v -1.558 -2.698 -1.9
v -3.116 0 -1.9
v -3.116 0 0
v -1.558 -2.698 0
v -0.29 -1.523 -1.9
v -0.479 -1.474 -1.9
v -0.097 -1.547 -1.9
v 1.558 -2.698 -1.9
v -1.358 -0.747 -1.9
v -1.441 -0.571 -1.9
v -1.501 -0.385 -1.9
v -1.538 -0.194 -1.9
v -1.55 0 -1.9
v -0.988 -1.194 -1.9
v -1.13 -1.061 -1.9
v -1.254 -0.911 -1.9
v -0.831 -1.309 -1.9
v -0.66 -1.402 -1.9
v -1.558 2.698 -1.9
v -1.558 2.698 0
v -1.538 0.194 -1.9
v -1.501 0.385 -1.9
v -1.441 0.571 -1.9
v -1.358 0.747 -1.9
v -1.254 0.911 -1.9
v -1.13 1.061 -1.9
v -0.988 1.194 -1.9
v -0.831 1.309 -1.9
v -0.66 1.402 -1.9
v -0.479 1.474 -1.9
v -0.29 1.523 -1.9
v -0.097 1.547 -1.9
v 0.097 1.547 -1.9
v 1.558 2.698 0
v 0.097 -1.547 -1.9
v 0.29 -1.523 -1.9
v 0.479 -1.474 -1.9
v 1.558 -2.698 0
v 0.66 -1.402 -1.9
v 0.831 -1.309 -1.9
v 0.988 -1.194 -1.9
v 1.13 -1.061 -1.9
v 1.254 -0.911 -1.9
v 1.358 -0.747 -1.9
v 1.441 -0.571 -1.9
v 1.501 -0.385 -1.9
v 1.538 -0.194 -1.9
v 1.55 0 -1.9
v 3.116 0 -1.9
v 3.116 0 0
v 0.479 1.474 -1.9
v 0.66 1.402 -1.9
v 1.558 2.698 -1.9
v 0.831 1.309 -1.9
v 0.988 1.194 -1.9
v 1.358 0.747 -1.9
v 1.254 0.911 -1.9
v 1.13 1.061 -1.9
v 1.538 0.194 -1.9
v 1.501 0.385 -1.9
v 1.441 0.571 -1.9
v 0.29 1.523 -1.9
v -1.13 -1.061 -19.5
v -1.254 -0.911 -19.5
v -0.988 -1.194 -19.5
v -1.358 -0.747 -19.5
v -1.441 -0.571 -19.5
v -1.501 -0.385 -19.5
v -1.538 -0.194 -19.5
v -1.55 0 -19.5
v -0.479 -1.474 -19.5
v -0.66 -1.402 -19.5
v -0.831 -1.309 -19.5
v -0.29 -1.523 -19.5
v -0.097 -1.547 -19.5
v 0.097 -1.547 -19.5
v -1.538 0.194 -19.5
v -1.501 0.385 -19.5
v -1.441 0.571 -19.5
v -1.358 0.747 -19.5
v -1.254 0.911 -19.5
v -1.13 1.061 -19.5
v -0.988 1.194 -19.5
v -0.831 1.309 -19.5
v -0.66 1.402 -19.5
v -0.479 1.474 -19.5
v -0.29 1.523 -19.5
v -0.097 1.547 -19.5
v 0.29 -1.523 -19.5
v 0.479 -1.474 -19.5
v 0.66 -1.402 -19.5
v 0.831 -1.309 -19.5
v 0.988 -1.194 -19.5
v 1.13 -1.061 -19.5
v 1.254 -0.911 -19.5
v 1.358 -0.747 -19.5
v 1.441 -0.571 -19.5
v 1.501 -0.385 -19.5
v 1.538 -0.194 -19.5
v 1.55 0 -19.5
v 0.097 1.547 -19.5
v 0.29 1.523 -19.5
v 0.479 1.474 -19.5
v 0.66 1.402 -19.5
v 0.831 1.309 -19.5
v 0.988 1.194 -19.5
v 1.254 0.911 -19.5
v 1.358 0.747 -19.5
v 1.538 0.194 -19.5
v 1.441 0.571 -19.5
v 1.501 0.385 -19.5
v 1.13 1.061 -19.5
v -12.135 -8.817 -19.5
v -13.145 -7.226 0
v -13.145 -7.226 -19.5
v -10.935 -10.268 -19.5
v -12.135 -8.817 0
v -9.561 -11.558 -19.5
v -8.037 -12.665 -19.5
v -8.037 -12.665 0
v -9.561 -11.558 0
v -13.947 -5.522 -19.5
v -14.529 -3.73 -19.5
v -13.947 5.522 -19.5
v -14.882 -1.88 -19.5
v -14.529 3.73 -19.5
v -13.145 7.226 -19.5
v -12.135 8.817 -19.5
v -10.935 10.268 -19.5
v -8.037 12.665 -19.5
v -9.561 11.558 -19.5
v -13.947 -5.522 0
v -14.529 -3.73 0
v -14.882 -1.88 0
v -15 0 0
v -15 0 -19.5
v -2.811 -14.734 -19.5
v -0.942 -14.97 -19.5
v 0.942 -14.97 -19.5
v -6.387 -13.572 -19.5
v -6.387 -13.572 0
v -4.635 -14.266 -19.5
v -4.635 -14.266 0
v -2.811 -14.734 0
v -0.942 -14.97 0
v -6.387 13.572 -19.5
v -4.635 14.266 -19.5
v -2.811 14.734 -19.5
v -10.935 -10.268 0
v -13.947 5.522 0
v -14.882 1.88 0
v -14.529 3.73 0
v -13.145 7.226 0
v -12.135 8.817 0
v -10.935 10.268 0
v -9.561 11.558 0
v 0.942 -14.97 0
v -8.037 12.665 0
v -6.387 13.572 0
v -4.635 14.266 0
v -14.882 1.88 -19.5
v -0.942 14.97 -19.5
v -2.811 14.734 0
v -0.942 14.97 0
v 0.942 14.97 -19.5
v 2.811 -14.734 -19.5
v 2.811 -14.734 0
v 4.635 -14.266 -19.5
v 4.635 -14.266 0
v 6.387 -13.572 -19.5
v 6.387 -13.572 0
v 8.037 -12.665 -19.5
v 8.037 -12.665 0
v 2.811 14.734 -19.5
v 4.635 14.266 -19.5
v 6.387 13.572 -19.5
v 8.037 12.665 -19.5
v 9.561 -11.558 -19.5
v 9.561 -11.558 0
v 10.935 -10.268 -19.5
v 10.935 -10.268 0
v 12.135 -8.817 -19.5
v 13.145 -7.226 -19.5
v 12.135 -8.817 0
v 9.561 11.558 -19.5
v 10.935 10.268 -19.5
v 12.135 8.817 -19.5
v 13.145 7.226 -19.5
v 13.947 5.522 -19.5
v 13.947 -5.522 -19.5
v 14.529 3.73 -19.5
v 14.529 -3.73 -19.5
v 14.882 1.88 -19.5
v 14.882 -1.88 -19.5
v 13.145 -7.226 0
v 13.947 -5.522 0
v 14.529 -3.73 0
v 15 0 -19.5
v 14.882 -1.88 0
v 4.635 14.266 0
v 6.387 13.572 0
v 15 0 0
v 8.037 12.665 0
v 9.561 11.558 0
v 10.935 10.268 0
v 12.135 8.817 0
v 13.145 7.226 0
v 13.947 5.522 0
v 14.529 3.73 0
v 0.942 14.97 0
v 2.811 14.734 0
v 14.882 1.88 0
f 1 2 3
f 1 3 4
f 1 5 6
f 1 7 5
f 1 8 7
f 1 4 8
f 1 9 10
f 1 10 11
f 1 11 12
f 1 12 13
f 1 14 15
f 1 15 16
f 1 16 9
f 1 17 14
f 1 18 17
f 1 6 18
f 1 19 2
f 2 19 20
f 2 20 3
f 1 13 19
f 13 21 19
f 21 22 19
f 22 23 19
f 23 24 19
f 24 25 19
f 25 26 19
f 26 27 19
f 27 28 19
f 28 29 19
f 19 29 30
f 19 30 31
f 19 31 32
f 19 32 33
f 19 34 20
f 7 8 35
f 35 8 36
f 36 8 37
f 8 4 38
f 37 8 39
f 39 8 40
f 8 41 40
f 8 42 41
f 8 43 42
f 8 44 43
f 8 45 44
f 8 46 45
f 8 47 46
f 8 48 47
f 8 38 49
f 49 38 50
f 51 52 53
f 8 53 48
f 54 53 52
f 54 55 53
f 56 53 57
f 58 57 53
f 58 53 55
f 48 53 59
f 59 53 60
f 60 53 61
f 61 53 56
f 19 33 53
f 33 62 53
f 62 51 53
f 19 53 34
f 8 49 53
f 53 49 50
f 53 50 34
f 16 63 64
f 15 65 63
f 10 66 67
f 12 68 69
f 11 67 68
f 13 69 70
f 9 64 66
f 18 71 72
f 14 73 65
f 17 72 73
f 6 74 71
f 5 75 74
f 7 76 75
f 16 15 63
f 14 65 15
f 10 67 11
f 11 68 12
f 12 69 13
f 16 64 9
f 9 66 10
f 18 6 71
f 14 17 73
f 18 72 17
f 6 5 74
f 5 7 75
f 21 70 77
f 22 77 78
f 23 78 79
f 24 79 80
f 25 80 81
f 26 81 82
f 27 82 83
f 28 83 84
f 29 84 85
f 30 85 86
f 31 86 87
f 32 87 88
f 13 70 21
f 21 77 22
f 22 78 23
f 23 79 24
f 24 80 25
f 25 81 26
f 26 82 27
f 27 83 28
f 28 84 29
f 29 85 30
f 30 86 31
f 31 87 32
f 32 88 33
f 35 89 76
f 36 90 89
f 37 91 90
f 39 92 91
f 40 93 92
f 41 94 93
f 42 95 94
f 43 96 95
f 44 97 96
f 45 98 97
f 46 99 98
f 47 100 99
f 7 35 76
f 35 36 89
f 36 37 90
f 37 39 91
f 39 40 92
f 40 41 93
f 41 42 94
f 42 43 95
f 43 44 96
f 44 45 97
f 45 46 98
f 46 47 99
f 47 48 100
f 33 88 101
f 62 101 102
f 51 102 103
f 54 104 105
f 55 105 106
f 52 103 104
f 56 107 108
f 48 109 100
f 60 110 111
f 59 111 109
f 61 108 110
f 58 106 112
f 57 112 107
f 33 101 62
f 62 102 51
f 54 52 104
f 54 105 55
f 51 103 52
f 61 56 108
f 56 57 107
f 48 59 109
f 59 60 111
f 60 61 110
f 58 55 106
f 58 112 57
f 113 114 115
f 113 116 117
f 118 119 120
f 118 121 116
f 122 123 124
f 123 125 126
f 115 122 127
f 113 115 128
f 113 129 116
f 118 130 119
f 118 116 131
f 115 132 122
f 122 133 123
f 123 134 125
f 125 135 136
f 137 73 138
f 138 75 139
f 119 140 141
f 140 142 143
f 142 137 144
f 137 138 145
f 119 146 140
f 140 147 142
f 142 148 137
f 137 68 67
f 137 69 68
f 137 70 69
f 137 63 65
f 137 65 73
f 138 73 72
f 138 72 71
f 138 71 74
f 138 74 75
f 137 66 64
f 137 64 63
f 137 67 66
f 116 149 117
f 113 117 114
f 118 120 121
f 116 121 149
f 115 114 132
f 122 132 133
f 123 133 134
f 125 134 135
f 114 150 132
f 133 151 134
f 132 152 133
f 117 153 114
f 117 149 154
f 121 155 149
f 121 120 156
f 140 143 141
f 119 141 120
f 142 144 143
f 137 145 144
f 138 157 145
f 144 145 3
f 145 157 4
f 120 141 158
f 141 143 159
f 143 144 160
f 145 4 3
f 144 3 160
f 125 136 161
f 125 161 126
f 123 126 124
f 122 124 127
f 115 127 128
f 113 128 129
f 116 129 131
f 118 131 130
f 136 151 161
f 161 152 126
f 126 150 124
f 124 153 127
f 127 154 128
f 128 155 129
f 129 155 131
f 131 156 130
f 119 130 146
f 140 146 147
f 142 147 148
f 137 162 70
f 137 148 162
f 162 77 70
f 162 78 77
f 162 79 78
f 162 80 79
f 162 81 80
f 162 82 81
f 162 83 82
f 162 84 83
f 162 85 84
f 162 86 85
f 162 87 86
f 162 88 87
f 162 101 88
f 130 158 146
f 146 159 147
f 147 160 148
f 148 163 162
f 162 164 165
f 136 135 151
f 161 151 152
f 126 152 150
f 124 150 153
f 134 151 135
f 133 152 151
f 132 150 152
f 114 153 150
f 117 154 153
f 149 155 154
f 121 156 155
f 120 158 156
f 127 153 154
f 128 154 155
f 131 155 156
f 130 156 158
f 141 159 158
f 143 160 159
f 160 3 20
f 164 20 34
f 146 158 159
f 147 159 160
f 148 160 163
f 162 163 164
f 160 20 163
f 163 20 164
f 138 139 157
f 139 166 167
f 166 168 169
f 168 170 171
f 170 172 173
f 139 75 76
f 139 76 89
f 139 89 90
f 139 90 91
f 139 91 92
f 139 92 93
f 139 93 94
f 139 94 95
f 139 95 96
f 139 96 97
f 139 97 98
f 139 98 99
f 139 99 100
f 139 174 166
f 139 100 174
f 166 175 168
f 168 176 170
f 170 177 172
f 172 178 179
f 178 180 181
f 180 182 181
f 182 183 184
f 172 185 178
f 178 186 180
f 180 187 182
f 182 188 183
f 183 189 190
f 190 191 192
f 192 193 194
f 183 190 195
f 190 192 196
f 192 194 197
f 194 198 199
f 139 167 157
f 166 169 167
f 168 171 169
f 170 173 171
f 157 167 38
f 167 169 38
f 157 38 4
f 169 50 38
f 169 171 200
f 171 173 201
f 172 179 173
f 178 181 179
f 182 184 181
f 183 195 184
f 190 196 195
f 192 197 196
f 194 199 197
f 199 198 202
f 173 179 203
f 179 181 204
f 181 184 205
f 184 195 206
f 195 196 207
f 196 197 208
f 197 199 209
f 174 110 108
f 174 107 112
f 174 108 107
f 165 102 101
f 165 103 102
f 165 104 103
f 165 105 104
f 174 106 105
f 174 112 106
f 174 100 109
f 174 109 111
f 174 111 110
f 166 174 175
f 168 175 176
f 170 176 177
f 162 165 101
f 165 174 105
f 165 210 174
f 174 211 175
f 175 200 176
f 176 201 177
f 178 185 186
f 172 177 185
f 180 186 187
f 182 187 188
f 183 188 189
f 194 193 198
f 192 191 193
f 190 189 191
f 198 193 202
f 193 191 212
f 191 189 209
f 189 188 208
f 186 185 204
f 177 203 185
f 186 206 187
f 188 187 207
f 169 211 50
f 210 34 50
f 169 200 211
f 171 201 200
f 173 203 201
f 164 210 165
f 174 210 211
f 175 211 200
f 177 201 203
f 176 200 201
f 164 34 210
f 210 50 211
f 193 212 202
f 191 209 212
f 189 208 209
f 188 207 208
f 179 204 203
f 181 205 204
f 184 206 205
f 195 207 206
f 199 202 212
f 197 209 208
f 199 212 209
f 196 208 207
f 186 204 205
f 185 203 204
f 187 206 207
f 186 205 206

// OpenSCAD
$fn = 50;

difference() {
	union() {
		translate(v = [0, 0, -19.5]) {
			cylinder(h = 19.5, r = 15.0);
		}
	}
	union() {
		translate(v = [0, 0, 0]) {
			rotate(a = [0, 0, 0]) {
				difference() {
					union() {
						translate(v = [0, 0, -1.9]) {
							linear_extrude(height = 1.9) {
								polygon(points = [[3.1158, 0.0], [1.5579000000000005, 2.698361953111554], [-1.5578999999999994, 2.6983619531115544], [-3.1158, 3.815754496783323e-16], [-1.5579000000000014, -2.6983619531115535], [1.557899999999998, -2.6983619531115552]]);
							}
						}
					}
					union();
				}
			}
		}
		#translate(v = [0, 0, -100.0]) {
			cylinder(h = 200, r = 1.55);
		}
	}
}
